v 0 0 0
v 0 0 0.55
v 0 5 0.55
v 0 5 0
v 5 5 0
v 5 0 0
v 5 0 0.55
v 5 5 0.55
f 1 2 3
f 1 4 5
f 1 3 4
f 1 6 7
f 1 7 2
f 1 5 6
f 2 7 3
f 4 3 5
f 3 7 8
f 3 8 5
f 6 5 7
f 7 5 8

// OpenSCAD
/* Warning, this is a very basic generator with a lot of approximation 
input data : [UPQFN, 6EW, 5x5x0.55mm, 40, , B, C04-00621B]
generated by com.zoubworld.electronics.cad.model3d.Basic
Date : Sun Feb 15 10:50:49 CET 2026
*/

//body
color("black")
translate([0,0,0])
cube([5.0,5.0,0.55], center=false);
